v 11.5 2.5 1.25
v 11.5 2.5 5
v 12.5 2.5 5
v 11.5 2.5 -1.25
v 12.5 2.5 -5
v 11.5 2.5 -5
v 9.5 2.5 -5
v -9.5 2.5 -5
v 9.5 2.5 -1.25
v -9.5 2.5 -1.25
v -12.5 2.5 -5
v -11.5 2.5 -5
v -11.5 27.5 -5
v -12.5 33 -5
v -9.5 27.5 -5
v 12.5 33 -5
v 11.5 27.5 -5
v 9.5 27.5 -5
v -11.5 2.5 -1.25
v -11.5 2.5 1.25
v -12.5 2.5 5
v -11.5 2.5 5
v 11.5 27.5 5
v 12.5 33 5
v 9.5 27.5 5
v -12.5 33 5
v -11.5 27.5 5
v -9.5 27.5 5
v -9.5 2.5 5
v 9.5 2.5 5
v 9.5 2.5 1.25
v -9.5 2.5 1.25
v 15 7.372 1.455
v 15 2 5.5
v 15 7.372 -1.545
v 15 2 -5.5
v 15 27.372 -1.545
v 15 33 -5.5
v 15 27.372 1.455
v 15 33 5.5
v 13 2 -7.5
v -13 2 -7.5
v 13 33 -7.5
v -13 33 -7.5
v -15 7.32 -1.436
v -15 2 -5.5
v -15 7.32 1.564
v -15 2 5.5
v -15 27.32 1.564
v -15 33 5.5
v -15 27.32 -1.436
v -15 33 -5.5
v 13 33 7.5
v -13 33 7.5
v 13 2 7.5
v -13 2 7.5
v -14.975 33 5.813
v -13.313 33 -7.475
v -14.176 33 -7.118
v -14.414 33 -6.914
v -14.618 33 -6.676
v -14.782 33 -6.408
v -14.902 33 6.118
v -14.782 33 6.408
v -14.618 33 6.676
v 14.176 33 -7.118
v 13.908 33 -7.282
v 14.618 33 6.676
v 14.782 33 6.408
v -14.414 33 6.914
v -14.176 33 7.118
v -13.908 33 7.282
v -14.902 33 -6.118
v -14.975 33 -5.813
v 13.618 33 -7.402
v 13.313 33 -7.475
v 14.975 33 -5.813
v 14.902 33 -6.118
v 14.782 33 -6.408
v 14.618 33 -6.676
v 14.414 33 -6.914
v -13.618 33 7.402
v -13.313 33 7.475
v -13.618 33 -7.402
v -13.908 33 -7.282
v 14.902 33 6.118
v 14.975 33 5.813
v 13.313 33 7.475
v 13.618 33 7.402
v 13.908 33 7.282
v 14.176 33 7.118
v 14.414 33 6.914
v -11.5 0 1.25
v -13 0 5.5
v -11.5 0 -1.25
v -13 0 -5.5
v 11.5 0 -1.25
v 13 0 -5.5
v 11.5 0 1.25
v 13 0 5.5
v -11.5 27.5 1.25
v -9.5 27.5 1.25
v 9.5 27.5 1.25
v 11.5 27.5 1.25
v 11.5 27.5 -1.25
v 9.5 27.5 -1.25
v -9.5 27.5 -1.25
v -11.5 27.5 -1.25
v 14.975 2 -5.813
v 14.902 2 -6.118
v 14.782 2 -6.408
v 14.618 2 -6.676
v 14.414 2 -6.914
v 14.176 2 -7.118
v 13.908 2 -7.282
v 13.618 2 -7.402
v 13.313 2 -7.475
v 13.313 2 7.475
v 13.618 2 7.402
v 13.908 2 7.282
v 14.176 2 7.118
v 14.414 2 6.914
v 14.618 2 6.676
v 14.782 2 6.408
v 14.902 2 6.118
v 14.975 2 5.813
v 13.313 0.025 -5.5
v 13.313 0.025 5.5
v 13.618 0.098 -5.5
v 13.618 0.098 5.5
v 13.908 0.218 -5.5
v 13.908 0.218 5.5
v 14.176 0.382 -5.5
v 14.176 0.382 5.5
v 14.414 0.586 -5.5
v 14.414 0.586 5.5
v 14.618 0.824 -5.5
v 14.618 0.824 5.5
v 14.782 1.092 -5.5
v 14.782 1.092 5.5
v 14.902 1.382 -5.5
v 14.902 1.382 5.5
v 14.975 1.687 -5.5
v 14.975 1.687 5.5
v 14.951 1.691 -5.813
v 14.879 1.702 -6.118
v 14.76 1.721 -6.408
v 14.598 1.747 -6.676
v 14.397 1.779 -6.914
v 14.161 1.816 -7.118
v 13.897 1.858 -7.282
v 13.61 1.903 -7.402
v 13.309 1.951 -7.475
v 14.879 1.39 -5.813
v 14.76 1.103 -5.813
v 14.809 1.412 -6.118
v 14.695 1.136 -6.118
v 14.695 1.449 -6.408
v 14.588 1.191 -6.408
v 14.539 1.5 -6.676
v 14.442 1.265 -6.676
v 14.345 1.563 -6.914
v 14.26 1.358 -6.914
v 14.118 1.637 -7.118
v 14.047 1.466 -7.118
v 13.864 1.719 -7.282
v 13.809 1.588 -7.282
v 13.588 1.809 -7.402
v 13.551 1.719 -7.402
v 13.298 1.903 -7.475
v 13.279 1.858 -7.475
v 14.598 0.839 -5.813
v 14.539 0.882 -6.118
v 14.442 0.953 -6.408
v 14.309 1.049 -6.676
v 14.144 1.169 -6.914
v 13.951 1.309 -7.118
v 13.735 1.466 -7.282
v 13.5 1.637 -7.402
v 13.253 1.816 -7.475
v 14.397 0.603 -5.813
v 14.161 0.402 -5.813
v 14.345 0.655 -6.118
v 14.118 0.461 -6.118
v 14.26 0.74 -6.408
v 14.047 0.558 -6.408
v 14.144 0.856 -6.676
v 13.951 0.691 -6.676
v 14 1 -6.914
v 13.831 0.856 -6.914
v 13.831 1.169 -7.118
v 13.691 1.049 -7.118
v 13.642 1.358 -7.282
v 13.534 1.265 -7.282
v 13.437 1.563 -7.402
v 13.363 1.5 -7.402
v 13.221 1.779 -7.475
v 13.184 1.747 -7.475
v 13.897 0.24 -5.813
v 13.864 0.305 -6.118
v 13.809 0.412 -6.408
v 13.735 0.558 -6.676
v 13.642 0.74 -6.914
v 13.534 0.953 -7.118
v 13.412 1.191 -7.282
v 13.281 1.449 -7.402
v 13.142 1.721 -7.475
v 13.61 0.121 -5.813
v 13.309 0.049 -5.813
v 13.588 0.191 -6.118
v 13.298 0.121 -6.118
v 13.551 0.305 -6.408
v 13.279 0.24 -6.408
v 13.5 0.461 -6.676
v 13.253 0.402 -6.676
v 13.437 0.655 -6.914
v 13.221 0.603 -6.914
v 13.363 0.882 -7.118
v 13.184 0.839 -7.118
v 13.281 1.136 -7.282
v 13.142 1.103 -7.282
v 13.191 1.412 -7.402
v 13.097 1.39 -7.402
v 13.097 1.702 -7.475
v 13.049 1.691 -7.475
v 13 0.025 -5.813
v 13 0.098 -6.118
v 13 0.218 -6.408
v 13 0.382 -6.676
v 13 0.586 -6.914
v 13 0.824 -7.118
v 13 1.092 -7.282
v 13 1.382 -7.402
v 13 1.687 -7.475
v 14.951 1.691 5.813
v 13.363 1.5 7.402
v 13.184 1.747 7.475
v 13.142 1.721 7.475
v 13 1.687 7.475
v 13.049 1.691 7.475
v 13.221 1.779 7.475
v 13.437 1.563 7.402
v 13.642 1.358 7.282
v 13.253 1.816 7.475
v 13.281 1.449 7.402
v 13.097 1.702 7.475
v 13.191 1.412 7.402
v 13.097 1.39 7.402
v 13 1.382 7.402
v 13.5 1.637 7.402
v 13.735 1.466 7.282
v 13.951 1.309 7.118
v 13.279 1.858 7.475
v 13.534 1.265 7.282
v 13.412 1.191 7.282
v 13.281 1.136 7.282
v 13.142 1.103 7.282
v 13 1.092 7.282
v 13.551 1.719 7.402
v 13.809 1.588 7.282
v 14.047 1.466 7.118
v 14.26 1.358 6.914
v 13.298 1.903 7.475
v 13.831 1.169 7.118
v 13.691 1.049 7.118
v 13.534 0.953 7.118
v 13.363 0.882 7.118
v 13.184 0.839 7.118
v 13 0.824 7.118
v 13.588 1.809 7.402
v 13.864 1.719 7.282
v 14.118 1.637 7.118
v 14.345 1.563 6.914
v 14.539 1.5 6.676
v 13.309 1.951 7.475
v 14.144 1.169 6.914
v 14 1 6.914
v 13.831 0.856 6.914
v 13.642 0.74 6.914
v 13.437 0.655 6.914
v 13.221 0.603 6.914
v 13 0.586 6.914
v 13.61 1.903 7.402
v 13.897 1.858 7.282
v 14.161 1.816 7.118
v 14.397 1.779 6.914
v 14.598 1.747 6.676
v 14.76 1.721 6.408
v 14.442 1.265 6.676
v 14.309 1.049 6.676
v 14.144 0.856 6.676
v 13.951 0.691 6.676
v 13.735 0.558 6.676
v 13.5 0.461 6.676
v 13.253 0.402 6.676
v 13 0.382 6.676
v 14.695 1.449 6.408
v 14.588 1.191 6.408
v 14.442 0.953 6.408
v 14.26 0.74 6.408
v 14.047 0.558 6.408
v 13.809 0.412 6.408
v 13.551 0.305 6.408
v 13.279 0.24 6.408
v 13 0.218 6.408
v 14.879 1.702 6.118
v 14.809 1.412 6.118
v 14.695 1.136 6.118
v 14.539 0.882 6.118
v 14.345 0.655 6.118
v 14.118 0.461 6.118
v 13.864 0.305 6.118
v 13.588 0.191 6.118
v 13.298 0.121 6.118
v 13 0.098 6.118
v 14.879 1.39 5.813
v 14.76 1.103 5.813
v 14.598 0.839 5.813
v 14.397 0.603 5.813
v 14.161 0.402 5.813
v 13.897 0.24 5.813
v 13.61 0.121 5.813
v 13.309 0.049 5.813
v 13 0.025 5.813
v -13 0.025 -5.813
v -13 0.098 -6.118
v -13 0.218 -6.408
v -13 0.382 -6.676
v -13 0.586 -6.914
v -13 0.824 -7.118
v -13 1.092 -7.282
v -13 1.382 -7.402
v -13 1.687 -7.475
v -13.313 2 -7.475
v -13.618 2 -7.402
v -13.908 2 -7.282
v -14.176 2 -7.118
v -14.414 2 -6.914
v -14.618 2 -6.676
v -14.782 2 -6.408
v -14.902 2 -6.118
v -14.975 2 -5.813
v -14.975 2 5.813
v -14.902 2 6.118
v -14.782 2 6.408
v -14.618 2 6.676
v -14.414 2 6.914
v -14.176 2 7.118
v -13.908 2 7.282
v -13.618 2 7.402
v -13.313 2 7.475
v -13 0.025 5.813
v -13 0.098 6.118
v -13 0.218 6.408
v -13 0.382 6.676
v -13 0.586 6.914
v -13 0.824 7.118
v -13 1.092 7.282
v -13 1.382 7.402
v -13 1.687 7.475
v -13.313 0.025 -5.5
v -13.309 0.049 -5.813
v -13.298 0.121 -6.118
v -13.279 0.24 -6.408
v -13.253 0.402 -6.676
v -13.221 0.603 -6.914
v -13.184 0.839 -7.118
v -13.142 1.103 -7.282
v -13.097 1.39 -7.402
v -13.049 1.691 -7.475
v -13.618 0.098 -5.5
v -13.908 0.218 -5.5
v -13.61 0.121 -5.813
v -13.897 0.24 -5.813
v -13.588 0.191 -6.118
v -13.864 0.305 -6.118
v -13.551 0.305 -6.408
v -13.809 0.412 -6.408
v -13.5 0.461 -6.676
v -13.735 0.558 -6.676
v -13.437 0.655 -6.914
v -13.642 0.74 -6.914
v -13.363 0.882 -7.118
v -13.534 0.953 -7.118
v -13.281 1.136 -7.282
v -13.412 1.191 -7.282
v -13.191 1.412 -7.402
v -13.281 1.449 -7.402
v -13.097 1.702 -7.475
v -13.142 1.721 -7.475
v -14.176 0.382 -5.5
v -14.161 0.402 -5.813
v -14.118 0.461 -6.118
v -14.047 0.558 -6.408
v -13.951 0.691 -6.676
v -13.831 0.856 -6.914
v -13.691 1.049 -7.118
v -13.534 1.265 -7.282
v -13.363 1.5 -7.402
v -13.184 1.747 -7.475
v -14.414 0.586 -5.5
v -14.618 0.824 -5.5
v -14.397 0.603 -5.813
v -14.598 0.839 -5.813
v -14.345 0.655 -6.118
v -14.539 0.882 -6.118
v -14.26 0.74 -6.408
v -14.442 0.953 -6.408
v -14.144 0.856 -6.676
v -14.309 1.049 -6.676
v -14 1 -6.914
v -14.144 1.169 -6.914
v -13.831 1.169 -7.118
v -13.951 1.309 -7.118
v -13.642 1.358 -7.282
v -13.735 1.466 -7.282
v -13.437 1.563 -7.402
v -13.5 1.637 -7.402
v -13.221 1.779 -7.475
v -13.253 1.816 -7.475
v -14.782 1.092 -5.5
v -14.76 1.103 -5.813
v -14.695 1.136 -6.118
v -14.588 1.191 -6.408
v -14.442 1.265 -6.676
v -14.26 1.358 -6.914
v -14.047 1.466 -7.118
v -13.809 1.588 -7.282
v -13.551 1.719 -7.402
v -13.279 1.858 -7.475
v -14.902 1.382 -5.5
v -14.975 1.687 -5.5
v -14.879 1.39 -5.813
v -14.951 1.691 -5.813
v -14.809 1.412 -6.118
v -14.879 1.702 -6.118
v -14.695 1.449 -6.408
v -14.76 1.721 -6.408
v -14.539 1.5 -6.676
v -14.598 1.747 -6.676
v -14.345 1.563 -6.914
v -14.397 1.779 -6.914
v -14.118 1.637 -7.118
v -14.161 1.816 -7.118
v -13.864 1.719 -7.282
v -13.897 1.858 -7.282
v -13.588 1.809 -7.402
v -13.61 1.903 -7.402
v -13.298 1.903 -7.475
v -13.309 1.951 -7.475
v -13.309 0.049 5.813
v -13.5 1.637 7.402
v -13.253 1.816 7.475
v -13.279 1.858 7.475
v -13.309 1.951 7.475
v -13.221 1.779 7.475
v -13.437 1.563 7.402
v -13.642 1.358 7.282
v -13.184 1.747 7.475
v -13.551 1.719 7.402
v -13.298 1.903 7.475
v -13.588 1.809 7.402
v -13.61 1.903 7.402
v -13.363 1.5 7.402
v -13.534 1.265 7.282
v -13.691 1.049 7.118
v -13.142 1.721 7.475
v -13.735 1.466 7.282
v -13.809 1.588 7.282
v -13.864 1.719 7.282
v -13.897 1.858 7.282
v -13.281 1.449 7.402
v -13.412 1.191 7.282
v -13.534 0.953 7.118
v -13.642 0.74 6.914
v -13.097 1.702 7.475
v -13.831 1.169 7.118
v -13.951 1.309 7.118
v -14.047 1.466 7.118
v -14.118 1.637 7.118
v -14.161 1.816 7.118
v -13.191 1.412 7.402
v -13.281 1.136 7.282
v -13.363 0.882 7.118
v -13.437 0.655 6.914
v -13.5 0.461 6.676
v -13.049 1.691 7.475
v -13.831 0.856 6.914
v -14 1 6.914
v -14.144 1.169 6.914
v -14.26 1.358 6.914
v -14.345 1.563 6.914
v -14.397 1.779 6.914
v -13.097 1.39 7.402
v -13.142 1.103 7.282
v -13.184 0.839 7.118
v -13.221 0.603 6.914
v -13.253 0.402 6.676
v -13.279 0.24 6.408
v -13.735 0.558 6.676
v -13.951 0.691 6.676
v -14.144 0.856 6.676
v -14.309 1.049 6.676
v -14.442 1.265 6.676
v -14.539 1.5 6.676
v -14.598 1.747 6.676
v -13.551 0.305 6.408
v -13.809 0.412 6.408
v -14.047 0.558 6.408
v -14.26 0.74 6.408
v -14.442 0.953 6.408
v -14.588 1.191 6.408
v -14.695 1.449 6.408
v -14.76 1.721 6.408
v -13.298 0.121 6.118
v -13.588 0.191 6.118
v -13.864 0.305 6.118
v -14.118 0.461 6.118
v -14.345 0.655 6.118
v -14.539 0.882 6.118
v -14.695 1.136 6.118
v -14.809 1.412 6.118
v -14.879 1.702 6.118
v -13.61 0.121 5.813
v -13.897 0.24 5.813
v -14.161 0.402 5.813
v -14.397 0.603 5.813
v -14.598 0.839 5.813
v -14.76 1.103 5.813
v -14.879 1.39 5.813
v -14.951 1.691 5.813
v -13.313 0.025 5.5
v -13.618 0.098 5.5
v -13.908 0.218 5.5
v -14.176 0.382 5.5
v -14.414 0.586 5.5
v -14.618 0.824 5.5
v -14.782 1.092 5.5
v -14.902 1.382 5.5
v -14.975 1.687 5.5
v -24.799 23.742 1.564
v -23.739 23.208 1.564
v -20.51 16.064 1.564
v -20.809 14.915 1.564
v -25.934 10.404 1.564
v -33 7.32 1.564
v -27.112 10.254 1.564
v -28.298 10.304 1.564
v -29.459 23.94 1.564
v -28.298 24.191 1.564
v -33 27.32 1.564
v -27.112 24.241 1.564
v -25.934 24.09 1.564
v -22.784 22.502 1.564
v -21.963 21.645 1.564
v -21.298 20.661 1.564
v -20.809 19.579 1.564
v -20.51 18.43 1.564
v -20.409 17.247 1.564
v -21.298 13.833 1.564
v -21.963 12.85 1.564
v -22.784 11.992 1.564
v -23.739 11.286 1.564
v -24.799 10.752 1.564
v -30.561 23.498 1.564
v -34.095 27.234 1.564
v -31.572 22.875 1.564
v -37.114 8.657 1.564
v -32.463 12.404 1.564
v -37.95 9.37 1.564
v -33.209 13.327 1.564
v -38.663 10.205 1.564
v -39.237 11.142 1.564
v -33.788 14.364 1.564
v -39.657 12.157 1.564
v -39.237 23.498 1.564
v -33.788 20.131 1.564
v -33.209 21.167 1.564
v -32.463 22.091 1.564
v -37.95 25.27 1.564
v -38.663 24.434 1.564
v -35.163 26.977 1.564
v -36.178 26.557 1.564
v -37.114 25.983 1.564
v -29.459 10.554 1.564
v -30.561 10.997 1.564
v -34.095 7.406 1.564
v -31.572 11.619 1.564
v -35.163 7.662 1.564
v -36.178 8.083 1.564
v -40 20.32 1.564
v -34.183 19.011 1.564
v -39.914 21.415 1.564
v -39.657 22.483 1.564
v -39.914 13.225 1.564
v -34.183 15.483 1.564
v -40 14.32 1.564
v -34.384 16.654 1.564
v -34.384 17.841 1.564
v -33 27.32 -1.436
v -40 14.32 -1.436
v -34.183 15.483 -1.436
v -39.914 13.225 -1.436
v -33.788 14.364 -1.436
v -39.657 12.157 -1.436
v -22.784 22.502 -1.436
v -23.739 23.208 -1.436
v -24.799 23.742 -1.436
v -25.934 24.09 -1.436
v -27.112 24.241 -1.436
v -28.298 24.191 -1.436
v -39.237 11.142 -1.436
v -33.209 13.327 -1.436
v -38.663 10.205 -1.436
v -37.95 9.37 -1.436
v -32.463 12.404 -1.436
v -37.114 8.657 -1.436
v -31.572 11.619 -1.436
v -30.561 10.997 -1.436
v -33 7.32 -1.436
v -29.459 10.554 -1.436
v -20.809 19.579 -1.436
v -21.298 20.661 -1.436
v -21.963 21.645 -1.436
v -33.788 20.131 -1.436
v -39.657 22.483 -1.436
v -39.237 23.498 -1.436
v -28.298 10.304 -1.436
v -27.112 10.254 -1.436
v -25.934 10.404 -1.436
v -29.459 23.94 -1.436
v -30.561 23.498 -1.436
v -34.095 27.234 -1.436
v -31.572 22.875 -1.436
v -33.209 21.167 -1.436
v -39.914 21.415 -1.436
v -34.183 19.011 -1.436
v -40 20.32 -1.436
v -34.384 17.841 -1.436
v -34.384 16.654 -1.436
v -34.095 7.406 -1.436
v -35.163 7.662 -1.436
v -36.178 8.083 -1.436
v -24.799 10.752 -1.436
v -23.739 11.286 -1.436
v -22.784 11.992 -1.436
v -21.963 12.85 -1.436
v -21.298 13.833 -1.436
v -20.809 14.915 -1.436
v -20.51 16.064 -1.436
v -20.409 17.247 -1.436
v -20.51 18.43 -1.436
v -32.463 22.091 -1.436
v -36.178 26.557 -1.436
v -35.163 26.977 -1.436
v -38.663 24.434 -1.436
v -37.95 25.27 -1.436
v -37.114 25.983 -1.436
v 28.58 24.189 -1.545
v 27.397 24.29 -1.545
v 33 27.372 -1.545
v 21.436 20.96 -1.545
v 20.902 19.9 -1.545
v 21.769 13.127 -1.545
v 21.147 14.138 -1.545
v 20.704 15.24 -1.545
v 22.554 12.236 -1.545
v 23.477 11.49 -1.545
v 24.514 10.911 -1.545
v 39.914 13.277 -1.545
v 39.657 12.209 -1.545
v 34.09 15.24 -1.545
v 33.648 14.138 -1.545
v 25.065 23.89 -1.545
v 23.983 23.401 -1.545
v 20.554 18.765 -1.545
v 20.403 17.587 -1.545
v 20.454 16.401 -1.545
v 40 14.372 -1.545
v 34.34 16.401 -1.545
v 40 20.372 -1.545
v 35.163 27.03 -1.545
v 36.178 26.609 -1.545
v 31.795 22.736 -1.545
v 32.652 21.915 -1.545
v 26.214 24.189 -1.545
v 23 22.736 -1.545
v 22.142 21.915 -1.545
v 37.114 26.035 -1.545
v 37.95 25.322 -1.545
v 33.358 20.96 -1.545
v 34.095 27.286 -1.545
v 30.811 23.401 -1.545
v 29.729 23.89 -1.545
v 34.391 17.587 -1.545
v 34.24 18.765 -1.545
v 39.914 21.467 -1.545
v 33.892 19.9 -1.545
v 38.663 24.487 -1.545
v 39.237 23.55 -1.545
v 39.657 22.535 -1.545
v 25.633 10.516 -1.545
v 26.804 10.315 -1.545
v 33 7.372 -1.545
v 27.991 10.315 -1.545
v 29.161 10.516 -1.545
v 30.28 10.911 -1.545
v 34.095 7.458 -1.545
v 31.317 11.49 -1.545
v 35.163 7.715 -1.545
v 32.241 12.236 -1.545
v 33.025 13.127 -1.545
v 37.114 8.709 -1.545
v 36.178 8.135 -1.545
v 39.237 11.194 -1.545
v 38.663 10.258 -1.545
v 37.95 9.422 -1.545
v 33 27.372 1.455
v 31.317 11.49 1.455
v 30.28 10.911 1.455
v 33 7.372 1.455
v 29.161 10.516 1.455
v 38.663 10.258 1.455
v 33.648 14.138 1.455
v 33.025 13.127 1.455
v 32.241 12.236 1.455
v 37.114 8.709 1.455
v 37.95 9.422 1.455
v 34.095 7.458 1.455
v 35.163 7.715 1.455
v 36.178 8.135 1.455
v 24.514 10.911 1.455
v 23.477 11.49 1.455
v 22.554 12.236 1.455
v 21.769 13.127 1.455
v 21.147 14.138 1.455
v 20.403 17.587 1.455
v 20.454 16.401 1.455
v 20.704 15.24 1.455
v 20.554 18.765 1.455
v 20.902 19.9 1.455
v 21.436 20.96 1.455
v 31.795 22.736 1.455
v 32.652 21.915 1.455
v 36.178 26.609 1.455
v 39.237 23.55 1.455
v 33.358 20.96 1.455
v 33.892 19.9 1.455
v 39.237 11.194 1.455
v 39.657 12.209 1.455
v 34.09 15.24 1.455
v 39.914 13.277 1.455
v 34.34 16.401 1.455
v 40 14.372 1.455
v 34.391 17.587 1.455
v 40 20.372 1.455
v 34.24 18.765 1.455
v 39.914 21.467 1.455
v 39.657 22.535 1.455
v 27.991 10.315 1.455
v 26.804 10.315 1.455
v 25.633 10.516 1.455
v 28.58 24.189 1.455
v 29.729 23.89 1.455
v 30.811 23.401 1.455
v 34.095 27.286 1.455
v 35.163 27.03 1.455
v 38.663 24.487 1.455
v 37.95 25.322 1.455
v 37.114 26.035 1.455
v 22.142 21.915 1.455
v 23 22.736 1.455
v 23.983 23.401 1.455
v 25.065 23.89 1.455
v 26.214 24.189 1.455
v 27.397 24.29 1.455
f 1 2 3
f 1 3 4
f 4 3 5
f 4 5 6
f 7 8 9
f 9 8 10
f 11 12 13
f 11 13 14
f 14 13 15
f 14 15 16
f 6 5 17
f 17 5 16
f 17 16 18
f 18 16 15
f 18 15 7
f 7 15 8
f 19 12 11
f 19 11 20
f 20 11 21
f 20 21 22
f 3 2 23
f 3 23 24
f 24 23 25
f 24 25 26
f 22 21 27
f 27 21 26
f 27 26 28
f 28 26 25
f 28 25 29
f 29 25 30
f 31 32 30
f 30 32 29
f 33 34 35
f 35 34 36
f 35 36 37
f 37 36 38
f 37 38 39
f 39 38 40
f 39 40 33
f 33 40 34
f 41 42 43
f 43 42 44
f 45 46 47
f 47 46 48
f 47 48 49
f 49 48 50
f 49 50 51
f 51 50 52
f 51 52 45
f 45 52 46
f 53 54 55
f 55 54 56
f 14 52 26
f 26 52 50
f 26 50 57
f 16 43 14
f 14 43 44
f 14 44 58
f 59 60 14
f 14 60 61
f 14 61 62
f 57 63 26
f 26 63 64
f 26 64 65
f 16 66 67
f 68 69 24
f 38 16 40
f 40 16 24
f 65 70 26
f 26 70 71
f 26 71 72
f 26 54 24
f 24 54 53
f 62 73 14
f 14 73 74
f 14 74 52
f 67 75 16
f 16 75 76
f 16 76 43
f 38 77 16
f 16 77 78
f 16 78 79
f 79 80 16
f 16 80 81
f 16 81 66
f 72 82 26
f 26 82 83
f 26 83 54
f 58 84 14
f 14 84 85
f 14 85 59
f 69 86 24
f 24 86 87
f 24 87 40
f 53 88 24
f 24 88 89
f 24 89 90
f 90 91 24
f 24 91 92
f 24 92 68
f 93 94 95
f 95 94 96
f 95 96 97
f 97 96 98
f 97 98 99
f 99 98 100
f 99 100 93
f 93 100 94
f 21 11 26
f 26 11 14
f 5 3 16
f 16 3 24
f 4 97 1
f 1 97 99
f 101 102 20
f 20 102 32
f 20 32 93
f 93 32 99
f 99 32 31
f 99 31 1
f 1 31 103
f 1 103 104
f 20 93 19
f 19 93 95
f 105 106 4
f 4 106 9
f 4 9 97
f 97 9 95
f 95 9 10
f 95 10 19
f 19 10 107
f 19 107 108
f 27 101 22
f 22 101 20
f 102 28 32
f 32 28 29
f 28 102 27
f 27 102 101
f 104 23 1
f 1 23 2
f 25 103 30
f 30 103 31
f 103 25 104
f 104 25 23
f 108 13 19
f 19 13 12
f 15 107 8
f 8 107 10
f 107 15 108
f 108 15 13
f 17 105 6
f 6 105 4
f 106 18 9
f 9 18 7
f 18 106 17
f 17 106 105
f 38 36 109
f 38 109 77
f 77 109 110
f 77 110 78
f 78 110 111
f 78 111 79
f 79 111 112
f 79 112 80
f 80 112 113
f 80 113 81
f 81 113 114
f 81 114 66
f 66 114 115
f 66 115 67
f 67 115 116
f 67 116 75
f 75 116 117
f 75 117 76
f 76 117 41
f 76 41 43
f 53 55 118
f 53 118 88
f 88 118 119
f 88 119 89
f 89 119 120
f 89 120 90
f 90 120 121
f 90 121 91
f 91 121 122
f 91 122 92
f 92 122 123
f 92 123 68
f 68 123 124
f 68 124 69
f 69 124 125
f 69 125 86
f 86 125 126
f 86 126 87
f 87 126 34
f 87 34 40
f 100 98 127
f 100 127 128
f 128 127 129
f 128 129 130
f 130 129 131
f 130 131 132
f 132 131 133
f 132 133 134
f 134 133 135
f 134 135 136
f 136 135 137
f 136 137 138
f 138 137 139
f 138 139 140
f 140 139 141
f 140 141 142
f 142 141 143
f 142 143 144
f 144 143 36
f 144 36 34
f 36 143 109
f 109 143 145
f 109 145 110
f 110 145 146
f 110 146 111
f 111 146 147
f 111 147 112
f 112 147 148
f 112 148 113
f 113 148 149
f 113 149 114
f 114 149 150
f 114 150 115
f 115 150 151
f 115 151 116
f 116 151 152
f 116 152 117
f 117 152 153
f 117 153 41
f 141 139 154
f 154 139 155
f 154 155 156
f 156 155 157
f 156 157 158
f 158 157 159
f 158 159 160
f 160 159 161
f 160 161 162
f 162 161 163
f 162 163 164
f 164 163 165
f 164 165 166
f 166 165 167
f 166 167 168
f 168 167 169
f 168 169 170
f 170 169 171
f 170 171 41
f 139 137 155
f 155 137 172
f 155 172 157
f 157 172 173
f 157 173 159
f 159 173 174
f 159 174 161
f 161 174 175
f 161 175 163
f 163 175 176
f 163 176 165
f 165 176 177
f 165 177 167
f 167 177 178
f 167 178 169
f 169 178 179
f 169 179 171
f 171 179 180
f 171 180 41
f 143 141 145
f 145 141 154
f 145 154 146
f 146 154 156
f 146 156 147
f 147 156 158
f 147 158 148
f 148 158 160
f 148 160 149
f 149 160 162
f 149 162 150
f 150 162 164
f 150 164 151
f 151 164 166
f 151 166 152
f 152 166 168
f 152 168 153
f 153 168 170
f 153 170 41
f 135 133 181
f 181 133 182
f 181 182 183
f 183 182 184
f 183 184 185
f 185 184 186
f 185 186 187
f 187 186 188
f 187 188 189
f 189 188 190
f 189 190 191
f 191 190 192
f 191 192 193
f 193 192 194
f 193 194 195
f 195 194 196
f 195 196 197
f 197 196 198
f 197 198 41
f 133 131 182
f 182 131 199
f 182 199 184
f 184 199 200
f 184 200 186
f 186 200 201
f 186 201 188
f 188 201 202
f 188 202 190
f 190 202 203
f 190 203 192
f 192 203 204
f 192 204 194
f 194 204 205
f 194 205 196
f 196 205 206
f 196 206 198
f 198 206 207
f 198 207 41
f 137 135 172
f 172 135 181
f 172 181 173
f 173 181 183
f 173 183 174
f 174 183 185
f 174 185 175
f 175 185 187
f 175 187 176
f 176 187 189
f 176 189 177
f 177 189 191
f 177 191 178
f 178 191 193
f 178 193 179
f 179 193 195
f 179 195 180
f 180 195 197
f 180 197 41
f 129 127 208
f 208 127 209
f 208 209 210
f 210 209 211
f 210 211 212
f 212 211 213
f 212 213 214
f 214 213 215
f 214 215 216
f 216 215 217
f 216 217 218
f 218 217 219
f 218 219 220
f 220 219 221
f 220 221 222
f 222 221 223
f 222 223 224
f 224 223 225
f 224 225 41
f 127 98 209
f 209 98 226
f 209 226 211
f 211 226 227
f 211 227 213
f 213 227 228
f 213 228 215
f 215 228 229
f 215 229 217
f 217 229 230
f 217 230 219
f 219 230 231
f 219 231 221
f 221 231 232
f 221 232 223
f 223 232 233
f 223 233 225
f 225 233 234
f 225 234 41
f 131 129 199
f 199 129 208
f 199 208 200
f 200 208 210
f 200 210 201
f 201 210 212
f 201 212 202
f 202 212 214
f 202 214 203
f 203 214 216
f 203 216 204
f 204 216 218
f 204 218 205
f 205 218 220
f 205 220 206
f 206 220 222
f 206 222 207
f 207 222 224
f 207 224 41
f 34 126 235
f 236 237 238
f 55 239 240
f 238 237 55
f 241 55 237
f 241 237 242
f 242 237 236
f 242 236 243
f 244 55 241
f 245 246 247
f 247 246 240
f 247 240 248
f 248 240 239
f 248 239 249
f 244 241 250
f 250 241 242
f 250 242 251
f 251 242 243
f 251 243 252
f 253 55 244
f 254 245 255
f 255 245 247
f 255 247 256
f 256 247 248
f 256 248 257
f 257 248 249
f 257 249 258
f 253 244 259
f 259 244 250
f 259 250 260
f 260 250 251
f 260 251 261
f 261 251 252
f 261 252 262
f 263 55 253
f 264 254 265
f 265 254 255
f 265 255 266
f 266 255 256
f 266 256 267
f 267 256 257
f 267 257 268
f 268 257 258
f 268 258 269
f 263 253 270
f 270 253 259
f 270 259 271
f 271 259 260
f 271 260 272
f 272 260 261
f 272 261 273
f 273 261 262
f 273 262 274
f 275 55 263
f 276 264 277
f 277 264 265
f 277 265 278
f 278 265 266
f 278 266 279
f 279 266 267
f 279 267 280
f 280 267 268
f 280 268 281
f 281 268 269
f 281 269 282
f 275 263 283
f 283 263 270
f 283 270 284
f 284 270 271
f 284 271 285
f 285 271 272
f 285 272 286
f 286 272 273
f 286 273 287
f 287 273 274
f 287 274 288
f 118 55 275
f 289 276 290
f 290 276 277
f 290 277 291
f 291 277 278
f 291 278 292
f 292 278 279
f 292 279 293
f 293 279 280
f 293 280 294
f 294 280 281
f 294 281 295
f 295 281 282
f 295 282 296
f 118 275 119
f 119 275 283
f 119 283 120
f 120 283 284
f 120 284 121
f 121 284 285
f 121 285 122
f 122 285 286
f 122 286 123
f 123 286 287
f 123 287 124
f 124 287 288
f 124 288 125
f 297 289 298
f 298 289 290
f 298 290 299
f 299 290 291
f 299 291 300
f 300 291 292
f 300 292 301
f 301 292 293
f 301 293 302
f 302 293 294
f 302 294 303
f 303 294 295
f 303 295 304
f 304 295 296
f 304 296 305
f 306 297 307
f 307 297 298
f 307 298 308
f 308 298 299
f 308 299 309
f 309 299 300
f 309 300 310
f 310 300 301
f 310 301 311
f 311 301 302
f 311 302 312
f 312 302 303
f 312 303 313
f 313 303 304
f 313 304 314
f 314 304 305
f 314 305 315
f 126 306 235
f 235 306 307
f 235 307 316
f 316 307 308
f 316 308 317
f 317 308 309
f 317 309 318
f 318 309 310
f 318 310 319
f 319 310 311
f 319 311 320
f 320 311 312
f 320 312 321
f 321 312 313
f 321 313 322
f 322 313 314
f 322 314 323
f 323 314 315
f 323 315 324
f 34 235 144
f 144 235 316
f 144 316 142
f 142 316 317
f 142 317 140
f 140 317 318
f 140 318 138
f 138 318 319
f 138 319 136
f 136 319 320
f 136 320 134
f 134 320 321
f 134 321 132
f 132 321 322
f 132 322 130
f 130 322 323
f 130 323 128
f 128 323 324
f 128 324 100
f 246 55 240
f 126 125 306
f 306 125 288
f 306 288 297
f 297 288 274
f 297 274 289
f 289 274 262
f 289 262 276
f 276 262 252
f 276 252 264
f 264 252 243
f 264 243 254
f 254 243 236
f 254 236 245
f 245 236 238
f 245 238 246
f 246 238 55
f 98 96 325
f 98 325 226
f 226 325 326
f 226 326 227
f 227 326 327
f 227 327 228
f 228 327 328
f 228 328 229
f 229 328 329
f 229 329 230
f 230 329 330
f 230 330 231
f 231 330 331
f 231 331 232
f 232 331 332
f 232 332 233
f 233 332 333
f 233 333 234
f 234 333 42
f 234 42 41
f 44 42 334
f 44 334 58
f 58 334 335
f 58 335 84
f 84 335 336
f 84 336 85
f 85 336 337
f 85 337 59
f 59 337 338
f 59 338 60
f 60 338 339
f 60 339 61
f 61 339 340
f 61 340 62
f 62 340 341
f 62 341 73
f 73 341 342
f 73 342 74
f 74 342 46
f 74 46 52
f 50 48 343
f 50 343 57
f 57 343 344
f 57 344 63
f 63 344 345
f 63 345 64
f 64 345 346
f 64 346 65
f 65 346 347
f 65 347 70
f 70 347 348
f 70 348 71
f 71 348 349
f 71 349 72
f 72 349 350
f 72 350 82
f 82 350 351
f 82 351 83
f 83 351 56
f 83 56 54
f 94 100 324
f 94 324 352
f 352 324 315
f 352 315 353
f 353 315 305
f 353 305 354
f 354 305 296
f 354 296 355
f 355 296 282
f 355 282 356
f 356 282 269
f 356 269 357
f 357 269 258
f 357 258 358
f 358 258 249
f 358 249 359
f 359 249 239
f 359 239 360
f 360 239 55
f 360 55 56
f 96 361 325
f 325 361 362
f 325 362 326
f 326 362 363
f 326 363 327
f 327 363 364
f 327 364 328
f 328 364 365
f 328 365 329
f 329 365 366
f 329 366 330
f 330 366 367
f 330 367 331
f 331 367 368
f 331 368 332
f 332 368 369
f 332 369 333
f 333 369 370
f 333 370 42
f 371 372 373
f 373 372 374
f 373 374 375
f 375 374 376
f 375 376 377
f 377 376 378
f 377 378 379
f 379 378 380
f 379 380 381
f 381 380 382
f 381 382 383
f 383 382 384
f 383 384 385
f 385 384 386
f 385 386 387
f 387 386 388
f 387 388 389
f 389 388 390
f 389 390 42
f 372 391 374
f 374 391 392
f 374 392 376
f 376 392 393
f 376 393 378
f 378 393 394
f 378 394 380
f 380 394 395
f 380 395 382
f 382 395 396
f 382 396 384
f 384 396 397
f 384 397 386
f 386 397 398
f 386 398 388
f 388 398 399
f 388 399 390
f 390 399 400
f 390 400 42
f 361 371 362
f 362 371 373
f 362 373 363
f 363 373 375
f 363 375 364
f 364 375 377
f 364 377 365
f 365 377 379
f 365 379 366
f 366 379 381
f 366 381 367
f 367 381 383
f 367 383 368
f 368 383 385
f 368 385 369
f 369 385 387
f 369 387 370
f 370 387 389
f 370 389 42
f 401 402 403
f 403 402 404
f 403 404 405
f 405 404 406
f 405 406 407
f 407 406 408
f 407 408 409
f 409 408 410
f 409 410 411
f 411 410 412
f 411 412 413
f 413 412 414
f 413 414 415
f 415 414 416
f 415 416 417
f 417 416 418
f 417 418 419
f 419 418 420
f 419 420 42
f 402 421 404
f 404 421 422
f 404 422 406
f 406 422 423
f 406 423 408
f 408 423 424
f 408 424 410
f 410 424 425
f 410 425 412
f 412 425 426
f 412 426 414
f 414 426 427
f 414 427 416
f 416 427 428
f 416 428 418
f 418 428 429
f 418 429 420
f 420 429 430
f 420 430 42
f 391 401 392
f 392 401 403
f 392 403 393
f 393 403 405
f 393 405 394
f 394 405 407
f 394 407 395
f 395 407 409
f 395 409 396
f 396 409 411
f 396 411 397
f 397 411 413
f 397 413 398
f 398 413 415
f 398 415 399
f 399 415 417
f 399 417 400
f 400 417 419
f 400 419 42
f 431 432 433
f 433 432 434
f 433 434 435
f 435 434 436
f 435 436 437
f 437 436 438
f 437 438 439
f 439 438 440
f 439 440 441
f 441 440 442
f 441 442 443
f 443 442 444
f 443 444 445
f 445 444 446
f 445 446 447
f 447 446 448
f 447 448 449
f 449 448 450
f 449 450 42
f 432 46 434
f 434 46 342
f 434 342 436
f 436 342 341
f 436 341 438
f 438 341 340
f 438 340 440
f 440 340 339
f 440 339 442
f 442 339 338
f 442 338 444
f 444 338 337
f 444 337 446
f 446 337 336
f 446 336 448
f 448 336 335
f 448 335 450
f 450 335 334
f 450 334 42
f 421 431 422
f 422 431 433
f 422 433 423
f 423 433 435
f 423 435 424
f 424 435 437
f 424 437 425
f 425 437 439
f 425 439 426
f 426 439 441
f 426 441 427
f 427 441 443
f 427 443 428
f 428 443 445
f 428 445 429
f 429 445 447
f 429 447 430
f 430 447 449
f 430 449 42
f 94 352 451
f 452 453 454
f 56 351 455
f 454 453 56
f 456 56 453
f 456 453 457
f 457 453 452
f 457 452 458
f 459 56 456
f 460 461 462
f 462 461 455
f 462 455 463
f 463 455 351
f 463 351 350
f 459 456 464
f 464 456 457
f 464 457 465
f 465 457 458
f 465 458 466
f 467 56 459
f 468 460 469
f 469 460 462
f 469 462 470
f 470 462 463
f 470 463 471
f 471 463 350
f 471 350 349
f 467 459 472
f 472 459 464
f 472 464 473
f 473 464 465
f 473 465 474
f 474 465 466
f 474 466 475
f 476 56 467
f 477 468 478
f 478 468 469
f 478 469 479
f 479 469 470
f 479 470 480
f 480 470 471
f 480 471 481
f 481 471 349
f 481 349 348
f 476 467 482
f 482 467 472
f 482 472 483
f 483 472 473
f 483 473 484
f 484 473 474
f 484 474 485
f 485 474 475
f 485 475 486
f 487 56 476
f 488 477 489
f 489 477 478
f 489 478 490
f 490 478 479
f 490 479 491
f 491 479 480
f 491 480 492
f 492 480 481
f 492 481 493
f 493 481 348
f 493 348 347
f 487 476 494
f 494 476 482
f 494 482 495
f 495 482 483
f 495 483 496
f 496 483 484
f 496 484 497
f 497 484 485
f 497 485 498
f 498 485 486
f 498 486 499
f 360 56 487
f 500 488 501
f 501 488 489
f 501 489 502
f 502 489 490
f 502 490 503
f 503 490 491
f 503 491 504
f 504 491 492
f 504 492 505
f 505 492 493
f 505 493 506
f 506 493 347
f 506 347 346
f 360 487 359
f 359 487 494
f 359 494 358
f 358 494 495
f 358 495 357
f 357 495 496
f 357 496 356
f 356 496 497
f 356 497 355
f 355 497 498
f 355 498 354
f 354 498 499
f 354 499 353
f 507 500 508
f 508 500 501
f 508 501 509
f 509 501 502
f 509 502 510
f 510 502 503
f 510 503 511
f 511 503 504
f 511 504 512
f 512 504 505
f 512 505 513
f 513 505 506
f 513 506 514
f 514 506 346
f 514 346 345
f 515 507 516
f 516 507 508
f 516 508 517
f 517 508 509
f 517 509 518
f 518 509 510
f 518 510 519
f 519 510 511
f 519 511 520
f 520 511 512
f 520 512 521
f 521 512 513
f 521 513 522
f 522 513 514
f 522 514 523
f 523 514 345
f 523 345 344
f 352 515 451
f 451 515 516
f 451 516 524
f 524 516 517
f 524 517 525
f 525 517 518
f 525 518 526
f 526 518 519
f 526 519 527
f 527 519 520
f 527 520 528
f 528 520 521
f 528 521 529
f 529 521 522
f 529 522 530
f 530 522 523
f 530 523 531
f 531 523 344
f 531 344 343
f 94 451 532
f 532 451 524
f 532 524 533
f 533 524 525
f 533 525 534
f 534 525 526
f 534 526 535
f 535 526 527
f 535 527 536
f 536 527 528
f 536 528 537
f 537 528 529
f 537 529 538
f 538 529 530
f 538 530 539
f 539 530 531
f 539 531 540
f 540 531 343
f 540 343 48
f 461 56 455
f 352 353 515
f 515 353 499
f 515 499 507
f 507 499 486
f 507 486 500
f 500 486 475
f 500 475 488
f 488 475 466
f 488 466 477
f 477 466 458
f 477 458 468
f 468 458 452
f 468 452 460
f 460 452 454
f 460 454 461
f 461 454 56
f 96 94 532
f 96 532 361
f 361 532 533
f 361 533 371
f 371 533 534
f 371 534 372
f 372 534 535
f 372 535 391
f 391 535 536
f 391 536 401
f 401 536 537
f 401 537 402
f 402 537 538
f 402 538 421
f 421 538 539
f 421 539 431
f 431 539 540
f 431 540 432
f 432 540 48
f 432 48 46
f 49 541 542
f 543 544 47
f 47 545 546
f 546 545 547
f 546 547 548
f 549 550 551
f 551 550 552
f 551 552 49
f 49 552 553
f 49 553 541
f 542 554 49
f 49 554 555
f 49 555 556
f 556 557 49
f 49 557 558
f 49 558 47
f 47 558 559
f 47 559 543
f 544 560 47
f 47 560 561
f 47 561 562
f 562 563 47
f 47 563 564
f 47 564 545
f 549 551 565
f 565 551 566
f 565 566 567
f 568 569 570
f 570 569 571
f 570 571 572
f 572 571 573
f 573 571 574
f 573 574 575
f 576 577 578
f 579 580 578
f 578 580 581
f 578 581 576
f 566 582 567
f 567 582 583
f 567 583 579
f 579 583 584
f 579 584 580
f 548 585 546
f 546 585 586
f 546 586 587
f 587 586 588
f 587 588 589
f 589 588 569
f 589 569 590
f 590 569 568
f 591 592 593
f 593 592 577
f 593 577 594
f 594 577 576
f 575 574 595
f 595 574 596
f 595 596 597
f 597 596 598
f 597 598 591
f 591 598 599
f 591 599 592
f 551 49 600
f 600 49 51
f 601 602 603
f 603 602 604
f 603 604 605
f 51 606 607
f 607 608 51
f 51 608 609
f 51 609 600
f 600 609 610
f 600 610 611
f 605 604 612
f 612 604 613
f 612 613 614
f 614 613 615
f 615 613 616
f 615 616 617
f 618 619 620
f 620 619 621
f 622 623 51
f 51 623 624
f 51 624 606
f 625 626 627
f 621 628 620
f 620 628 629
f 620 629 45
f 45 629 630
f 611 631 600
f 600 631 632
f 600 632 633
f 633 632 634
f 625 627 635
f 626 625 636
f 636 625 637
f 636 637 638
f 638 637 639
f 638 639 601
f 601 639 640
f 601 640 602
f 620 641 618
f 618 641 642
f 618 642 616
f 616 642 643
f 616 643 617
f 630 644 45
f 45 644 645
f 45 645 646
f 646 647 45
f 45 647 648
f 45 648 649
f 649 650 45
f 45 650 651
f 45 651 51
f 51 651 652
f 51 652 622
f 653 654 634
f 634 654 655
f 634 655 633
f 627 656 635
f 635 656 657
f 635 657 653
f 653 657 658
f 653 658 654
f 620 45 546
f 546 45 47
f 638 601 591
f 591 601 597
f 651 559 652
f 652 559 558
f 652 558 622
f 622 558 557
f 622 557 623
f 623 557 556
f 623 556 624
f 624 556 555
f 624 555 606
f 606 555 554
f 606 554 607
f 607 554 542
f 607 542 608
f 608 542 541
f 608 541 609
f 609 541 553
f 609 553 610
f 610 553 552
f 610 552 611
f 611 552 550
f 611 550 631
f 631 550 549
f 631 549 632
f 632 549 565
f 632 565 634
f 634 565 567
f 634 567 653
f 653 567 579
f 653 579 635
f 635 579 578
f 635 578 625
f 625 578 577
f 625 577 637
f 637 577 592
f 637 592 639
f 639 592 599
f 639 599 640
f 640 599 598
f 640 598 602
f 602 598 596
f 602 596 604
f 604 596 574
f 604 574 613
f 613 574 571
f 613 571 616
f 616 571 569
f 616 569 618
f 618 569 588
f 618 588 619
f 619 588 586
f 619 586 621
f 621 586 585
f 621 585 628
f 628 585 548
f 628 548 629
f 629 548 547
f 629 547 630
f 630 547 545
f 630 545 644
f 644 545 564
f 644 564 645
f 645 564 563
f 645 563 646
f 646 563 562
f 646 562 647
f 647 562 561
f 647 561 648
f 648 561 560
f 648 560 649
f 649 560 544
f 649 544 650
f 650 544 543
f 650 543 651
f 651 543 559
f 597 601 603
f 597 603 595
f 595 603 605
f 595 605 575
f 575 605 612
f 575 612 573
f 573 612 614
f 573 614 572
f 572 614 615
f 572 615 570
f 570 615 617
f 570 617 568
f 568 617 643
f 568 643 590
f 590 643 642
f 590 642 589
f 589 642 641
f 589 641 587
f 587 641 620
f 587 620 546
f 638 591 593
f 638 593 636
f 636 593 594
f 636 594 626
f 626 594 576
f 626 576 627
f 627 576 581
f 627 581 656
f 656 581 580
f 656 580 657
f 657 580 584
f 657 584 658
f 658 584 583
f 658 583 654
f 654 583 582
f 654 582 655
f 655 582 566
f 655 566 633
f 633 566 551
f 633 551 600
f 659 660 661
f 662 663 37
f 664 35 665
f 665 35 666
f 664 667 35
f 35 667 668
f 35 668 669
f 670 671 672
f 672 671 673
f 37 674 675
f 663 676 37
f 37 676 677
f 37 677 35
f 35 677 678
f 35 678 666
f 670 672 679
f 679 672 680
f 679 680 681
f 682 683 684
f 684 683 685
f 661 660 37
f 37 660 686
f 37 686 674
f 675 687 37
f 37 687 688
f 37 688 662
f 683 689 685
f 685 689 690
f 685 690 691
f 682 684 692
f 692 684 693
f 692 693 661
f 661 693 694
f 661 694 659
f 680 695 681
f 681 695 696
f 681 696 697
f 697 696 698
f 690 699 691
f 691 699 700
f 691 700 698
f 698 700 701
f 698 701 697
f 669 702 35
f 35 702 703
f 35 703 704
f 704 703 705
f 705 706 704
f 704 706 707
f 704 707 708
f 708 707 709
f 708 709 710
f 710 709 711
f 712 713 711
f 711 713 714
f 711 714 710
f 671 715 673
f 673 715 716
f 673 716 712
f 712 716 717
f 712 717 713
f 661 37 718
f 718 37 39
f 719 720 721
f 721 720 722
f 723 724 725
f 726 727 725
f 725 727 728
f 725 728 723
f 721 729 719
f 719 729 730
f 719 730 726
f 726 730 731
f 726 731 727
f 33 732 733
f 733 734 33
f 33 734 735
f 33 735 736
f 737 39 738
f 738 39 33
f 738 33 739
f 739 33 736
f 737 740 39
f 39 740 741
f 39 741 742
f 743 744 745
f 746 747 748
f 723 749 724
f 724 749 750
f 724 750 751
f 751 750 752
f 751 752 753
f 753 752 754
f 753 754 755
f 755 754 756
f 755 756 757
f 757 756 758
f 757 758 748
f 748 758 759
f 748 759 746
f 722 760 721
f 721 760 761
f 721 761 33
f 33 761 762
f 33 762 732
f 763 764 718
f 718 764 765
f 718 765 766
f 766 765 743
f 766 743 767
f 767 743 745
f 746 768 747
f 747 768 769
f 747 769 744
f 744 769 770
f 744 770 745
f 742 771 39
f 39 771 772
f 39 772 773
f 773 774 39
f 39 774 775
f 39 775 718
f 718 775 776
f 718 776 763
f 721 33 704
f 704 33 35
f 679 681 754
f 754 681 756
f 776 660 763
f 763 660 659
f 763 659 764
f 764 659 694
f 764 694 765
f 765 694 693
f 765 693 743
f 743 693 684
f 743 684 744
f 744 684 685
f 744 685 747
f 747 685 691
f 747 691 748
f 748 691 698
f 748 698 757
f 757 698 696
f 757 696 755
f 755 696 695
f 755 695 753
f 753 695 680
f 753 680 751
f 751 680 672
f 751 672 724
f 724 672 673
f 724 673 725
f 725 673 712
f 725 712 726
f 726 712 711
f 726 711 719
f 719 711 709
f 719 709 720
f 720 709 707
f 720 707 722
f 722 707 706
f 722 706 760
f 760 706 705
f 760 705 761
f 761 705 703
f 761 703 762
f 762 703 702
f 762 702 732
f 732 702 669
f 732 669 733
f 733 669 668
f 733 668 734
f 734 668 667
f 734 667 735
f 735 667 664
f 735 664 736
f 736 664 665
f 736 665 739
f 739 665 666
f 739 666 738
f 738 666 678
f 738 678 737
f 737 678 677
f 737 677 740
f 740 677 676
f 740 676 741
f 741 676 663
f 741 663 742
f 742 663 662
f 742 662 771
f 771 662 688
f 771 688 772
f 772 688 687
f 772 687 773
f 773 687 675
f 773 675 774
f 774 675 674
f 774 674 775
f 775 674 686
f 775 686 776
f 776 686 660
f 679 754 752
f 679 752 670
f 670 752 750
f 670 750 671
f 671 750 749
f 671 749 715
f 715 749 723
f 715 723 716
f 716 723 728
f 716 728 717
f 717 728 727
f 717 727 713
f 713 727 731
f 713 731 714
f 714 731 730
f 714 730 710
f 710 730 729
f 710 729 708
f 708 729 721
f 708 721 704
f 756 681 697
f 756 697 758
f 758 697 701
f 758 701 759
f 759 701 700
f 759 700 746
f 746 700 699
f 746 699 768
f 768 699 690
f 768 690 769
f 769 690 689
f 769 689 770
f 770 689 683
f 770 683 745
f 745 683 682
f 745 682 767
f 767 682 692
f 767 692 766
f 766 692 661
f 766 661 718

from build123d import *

# Parameters (mm, degrees)
SKETCH1_W           = 30
SKETCH1_H           = 15
BOSS_EXTRUDE1_DEPTH = 33
SKETCH2_W           = 25
SKETCH2_H           = 10
CUT_EXTRUDE1_DEPTH  = 30.5
SKETCH3_W           = 23
SKETCH3_H           = 2.5
CUT_EXTRUDE2_DEPTH  = 30.5
SKETCH4_W           = 2
SKETCH4_H           = 3.75
BOSS_EXTRUDE2_DEPTH = 25
SKETCH5_W           = 2
SKETCH5_H           = 3.75
BOSS_EXTRUDE3_DEPTH = 25
SKETCH6_W           = 2
SKETCH6_H           = 3.75
BOSS_EXTRUDE4_DEPTH = 25
SKETCH7_W           = 2
SKETCH7_H           = 3.75
BOSS_EXTRUDE5_DEPTH = 25
FILLET1_R           = 2
BOSS_EXTRUDE6_DEPTH = 25
CUT_EXTRUDE3_DEPTH  = 25
FILLET2_R           = 7
FILLET3_R           = 7
BOSS_EXTRUDE7_DEPTH = 25
CUT_EXTRUDE4_DEPTH  = 25
FILLET4_R           = 7


with BuildPart() as part:
    # Sketch1 → Boss-Extrude1 (new body)
    with BuildSketch(Plane(origin=(0, 0, 0), x_dir=(1, 0, 0), z_dir=(0, 1, 0))):
        Rectangle(SKETCH1_W, SKETCH1_H)
    extrude(amount=BOSS_EXTRUDE1_DEPTH)

    # Sketch2 → Cut-Extrude1 (cut)
    with BuildSketch(Plane(origin=(0, 33, 0), x_dir=(1, 0, 0), z_dir=(0, 1, 0))):
        Rectangle(SKETCH2_W, SKETCH2_H)
    extrude(amount=-CUT_EXTRUDE1_DEPTH, mode=Mode.SUBTRACT)

    # Sketch3 → Cut-Extrude2 (cut)
    with BuildSketch(Plane(origin=(0, 2.5, 0), x_dir=(1, 0, 0), z_dir=(0, 1, 0))):
        Rectangle(SKETCH3_W, SKETCH3_H)
    extrude(amount=-CUT_EXTRUDE2_DEPTH, mode=Mode.SUBTRACT)

    # Sketch4 → Boss-Extrude2 (add)
    with BuildSketch(Plane(origin=(0, 2.5, 0), x_dir=(1, 0, 0), z_dir=(0, 1, 0))):
        with Locations((-10.5, -3.125)):
            Rectangle(SKETCH4_W, SKETCH4_H)
    extrude(amount=BOSS_EXTRUDE2_DEPTH)

    # Sketch5 → Boss-Extrude3 (add)
    with BuildSketch(Plane(origin=(0, 2.5, 0), x_dir=(1, 0, 0), z_dir=(0, 1, 0))):
        with Locations((10.5, -3.125)):
            Rectangle(SKETCH5_W, SKETCH5_H)
    extrude(amount=BOSS_EXTRUDE3_DEPTH)

    # Sketch6 → Boss-Extrude4 (add)
    with BuildSketch(Plane(origin=(0, 2.5, 0), x_dir=(1, 0, 0), z_dir=(0, 1, 0))):
        with Locations((-10.5, 3.125)):
            Rectangle(SKETCH6_W, SKETCH6_H)
    extrude(amount=BOSS_EXTRUDE4_DEPTH)

    # Sketch7 → Boss-Extrude5 (add)
    with BuildSketch(Plane(origin=(0, 2.5, 0), x_dir=(1, 0, 0), z_dir=(0, 1, 0))):
        with Locations((10.5, 3.125)):
            Rectangle(SKETCH7_W, SKETCH7_H)
    extrude(amount=BOSS_EXTRUDE5_DEPTH)

    # Fillet1
    fillet1_edges = [part.edges().sort_by_distance(p)[0] for p in [
        (0, 0, 7.5),
        (-15, 0, 0),
        (0, 0, -7.5),
        (15, 0, 0),
        (15, 16.5, 7.5),
        (-15, 16.5, 7.5),
        (-15, 16.5, -7.5),
        (15, 16.5, -7.5),
    ]]
    fillet(fillet1_edges, radius=FILLET1_R)

    # Sketch8 → Boss-Extrude6 (add)
    with BuildSketch(Plane.ZY.offset(15)):
        Polygon((1.563932113, 13.092554953), (-1.436067887, 21.547100408), (-1.436067887, 7.31982768), (1.563932113, 7.31982768), align=None)
        Polygon((-1.436067887, 27.31982768), (-1.436067887, 21.547100408), (1.563932113, 13.092554953), (1.563932113, 27.31982768), align=None)
    extrude(amount=BOSS_EXTRUDE6_DEPTH)

    # Sketch9 → Cut-Extrude3 (cut)
    with BuildSketch(Plane.XY.offset(1.563932113)):
        with BuildLine():
            ThreePointArc((-20.409219381, 17.247203185), (-25.092170791, 23.852601419), (-32.875301047, 21.620068518))
            Line((-32.875301047, 21.620068518), (-21.943137715, 12.874337852))
            ThreePointArc((-21.943137715, 12.874337852), (-20.803821147, 14.930154595), (-20.409219381, 17.247203185))
        make_face()
        with BuildLine():
            Line((-21.943137715, 12.874337852), (-32.875301047, 21.620068518))
            ThreePointArc((-32.875301047, 21.620068518), (-31.782084714, 11.781121519), (-21.943137715, 12.874337852))
        make_face()
    extrude(amount=-CUT_EXTRUDE3_DEPTH, mode=Mode.SUBTRACT)

    # Fillet2
    fillet2_edges = [part.edges().sort_by_distance(p)[0] for p in [
        (-40, 7.31982768, 0.063932113),
    ]]
    fillet(fillet2_edges, radius=FILLET2_R)

    # Fillet3
    fillet3_edges = [part.edges().sort_by_distance(p)[0] for p in [
        (-40, 27.31982768, 0.063932113),
    ]]
    fillet(fillet3_edges, radius=FILLET3_R)

    # Sketch10 → Boss-Extrude7 (add)
    with BuildSketch(Plane(origin=(15, 0, 0), x_dir=(0, 0, -1), z_dir=(1, 0, 0))):
        Polygon((1.545363578, 13.144884462), (-1.454636422, 21.599429916), (-1.454636422, 7.372157189), (1.545363578, 7.372157189), align=None)
        Polygon((-1.454636422, 27.372157189), (-1.454636422, 21.599429916), (1.545363578, 13.144884462), (1.545363578, 27.372157189), align=None)
    extrude(amount=BOSS_EXTRUDE7_DEPTH)

    # Sketch11 → Cut-Extrude4 (cut)
    with BuildSketch(Plane(origin=(0, 0, -1.545363578), x_dir=(-1, 0, 0), z_dir=(0, 0, -1))):
        with BuildLine():
            ThreePointArc((-20.397153498, 17.289879987), (-25.080104908, 23.895278222), (-32.863235164, 21.66274532))
            Line((-32.863235164, 21.66274532), (-21.931071832, 12.917014654))
            ThreePointArc((-21.931071832, 12.917014654), (-20.791755264, 14.972831397), (-20.397153498, 17.289879987))
        make_face()
        with BuildLine():
            Line((-21.931071832, 12.917014654), (-32.863235164, 21.66274532))
            ThreePointArc((-32.863235164, 21.66274532), (-31.770018831, 11.823798321), (-21.931071832, 12.917014654))
        make_face()
    extrude(amount=-CUT_EXTRUDE4_DEPTH, mode=Mode.SUBTRACT)

    # Fillet4
    fillet4_edges = [part.edges().sort_by_distance(p)[0] for p in [
        (40, 27.372157189, -0.045363578),
        (40, 7.372157189, -0.045363578),
    ]]
    fillet(fillet4_edges, radius=FILLET4_R)


solid = part.part
